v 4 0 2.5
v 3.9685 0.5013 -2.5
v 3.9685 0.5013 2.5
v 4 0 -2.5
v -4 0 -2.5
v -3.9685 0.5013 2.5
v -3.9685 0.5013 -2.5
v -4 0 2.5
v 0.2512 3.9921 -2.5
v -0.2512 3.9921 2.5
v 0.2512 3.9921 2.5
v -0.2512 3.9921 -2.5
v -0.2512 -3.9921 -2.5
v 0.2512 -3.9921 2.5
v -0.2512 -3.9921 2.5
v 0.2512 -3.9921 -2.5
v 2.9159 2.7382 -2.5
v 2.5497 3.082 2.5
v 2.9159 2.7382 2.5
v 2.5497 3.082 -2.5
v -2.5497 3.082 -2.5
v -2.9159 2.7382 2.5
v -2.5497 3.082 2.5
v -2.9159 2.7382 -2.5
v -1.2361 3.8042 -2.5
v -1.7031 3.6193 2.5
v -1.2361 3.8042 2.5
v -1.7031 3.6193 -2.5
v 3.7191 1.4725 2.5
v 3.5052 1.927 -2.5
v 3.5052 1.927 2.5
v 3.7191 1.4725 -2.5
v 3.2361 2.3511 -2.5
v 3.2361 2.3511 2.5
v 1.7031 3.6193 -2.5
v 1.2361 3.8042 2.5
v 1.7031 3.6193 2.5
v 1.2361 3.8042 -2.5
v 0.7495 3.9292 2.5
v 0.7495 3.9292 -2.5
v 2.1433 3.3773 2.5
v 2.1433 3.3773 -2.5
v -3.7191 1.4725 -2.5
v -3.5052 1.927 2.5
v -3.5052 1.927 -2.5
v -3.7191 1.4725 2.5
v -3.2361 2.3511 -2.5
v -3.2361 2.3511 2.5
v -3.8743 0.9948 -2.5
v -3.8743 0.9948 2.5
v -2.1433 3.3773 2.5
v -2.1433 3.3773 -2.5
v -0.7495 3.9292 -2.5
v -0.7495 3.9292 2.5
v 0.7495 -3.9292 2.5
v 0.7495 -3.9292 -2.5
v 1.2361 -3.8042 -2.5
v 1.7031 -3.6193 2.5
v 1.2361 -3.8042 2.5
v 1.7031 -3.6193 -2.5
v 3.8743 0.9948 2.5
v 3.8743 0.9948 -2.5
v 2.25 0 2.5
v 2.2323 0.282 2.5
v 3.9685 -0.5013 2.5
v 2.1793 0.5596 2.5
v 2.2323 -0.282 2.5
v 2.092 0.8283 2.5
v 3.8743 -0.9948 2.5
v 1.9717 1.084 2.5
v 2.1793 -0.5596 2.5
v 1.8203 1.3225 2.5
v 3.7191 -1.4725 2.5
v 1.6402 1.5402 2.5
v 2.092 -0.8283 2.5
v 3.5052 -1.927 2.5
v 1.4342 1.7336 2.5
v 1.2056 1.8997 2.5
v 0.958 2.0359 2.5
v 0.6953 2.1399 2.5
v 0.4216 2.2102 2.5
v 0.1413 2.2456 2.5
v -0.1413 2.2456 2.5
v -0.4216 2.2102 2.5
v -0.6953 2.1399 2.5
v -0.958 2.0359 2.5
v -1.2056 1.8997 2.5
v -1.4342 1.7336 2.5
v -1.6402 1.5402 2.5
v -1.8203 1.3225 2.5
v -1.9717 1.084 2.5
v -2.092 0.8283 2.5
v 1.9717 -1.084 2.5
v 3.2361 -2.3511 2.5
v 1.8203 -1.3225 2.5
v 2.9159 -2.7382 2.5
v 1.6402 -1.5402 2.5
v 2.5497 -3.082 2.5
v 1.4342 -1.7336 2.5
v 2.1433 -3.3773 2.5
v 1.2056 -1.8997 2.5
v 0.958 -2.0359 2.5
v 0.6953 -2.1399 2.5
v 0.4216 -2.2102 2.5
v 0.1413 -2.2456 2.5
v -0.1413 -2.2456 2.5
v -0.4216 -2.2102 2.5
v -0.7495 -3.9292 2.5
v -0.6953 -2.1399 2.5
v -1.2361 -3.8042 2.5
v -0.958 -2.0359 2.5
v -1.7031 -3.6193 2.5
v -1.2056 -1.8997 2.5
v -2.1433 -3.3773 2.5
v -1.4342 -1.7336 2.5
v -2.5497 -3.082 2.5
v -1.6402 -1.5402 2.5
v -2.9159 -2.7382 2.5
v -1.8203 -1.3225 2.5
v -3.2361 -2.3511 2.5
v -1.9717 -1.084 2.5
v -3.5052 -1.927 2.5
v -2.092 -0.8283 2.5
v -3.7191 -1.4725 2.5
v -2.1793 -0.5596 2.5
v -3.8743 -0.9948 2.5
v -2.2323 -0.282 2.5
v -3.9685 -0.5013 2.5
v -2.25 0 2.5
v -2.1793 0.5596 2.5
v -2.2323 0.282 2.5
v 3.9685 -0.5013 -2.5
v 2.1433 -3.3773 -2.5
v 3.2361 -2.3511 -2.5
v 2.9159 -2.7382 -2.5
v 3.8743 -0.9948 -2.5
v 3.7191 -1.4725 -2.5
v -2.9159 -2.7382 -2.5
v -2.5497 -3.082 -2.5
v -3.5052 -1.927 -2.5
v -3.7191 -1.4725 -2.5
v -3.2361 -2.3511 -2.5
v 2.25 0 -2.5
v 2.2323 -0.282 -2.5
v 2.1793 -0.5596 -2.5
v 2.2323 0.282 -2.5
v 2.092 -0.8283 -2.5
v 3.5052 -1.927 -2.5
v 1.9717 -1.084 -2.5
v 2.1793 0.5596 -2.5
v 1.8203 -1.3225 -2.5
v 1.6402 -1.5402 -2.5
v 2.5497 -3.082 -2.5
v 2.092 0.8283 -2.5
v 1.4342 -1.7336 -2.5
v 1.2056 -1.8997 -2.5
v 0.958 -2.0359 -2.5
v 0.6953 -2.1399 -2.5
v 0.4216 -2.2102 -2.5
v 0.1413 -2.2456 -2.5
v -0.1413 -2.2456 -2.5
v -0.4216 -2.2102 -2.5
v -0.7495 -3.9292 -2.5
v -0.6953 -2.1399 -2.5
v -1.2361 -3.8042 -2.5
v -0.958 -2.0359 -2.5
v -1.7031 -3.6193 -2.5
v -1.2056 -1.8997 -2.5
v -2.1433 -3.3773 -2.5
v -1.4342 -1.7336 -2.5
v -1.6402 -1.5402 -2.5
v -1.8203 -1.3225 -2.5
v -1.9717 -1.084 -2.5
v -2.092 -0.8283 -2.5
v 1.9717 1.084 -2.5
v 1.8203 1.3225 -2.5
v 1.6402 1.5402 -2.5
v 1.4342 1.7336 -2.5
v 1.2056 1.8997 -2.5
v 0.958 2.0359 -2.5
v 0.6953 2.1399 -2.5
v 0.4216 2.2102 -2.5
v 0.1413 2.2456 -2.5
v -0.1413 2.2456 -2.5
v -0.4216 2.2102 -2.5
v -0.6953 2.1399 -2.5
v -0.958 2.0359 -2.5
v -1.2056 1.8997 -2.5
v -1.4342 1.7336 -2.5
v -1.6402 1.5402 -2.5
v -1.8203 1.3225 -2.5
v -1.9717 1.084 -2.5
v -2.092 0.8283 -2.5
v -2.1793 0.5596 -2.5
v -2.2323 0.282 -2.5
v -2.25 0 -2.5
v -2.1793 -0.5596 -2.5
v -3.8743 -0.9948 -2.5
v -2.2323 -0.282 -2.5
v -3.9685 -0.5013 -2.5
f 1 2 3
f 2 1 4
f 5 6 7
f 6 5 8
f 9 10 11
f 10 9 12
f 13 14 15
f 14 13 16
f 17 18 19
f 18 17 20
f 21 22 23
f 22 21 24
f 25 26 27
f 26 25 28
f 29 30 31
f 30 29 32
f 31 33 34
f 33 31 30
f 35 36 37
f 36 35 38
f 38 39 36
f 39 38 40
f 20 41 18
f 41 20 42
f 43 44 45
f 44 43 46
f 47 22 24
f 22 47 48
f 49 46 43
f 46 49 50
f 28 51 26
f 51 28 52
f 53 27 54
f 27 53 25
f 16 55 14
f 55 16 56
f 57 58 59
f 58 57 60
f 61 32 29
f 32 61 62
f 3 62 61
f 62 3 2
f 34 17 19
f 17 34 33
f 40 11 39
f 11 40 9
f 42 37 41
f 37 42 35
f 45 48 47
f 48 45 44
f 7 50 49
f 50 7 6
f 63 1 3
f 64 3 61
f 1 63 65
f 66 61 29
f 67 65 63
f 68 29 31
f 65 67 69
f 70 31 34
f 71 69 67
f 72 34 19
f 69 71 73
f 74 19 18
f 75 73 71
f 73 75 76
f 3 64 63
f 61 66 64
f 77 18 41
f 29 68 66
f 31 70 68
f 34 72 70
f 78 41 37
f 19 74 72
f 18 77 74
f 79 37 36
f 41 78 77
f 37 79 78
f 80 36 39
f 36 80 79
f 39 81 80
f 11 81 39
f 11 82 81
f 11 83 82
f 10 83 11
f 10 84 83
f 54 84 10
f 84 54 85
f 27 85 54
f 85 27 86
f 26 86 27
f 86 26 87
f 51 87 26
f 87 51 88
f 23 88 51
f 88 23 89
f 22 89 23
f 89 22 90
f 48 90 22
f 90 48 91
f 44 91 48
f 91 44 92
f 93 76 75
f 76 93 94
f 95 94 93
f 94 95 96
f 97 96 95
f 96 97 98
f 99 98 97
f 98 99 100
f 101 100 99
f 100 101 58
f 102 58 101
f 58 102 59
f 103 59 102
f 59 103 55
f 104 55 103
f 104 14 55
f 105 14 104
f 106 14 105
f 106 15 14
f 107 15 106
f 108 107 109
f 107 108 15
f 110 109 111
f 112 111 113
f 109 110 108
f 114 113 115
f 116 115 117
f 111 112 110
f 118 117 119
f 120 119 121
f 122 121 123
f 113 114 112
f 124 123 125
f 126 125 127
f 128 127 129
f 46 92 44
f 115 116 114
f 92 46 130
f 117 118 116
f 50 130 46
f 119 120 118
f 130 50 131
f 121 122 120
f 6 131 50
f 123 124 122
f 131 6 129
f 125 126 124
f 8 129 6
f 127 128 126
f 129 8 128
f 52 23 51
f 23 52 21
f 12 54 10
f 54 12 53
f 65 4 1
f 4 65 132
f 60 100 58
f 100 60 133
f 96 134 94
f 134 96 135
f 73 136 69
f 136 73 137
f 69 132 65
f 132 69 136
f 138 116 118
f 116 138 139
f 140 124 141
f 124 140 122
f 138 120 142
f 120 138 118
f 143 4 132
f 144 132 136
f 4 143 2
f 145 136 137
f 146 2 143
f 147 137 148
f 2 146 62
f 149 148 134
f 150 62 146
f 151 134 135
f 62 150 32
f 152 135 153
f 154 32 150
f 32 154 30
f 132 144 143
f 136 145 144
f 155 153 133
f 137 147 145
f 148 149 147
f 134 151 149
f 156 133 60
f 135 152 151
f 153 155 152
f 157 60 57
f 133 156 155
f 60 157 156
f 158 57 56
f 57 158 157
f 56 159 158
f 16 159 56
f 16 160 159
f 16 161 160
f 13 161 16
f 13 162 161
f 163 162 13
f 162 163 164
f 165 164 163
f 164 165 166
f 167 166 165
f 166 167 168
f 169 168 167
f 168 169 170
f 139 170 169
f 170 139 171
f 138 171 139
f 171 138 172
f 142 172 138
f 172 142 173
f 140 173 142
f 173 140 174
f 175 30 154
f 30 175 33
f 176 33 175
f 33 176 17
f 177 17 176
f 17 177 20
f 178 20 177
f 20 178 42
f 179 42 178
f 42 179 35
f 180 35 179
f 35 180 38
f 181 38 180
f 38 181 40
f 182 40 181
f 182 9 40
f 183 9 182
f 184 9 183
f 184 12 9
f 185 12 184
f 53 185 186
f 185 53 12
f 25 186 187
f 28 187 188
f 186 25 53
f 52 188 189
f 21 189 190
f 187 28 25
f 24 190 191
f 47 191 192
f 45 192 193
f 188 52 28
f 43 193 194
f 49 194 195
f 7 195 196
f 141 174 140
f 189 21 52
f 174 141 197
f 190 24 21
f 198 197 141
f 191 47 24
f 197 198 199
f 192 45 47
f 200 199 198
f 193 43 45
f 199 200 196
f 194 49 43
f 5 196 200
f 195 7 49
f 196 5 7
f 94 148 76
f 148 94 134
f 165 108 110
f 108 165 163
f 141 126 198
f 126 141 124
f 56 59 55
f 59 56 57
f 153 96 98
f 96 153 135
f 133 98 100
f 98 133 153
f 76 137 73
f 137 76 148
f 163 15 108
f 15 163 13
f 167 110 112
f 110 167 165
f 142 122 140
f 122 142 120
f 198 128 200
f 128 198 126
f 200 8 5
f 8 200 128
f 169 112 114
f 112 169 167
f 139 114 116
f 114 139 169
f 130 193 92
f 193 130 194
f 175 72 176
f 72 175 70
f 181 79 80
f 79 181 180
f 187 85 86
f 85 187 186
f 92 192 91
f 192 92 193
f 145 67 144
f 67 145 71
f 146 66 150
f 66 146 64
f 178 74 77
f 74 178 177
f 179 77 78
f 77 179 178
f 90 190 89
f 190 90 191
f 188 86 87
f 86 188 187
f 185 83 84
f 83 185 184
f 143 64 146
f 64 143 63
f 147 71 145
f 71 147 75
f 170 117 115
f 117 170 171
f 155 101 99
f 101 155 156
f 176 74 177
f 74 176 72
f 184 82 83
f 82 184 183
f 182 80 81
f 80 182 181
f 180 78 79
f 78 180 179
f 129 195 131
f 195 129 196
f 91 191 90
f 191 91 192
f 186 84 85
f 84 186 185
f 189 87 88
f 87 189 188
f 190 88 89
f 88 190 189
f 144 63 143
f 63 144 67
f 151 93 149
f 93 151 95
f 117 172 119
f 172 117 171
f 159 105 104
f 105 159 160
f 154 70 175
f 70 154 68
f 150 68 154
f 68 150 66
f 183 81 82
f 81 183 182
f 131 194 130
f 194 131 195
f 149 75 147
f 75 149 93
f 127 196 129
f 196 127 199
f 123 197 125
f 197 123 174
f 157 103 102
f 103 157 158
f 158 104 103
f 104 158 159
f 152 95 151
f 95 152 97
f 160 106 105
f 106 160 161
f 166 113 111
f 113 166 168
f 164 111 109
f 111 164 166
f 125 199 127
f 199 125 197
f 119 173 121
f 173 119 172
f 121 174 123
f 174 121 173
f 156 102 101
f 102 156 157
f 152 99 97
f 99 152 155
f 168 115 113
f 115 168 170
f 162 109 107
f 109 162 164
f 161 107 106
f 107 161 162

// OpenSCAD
$fn = 50;


difference() {
	union() {
		translate(v = [0, 0, -2.5000000000]) {
			cylinder(h = 5, r = 4.0000000000);
		}
	}
	union() {
		translate(v = [0, 0, -100.0000000000]) {
			cylinder(h = 200, r = 2.2500000000);
		}
	}
}
